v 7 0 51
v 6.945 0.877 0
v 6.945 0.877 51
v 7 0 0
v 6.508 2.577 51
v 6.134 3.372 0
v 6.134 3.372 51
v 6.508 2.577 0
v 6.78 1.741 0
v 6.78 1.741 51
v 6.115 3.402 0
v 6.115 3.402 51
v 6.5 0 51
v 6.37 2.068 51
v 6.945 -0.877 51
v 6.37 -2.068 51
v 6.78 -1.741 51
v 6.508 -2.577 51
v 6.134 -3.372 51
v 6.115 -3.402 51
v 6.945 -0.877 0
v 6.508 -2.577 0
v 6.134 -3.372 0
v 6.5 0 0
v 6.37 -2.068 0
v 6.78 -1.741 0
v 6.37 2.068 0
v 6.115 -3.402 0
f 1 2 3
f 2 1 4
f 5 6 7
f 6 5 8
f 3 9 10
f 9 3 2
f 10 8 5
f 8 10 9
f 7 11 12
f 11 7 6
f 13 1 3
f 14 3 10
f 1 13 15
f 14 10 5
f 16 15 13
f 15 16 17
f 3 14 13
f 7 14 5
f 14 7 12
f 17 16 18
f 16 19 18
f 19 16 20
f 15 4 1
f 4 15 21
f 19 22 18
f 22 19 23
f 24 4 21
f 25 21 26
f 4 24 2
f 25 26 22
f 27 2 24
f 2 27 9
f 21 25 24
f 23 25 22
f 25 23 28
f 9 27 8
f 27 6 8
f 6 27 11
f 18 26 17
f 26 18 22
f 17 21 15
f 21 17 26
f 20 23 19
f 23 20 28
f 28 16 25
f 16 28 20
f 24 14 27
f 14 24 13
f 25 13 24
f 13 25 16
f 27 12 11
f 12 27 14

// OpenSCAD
$fn = 50;


difference() {
	union() {
		cylinder(h = 51, r = 7.0000000000);
		translate(v = [-13.0000000000, 0, 0]) {
			cylinder(h = 51, r = 7.0000000000);
		}
	}
	union() {
		cylinder(h = 51, r = 3.2500000000);
		cylinder(h = 51, r = 1.8000000000);
		cylinder(h = 51, r = 1.8000000000);
		cylinder(h = 51, r = 1.8000000000);
		translate(v = [-17.5000000000, 0, 0]) {
			hull() {
				translate(v = [-3.7500000000, 0.0000000000, 0]) {
					cylinder(h = 51, r = 10.5000000000);
				}
				translate(v = [3.7500000000, 0.0000000000, 0]) {
					cylinder(h = 51, r = 10.5000000000);
				}
				translate(v = [-3.7500000000, -0.0000000000, 0]) {
					cylinder(h = 51, r = 10.5000000000);
				}
				translate(v = [3.7500000000, -0.0000000000, 0]) {
					cylinder(h = 51, r = 10.5000000000);
				}
			}
		}
		translate(v = [-10.0000000000, 0, 0.0000000000]) {
			cylinder(h = 51, r = 16.5000000000);
		}
	}
}
